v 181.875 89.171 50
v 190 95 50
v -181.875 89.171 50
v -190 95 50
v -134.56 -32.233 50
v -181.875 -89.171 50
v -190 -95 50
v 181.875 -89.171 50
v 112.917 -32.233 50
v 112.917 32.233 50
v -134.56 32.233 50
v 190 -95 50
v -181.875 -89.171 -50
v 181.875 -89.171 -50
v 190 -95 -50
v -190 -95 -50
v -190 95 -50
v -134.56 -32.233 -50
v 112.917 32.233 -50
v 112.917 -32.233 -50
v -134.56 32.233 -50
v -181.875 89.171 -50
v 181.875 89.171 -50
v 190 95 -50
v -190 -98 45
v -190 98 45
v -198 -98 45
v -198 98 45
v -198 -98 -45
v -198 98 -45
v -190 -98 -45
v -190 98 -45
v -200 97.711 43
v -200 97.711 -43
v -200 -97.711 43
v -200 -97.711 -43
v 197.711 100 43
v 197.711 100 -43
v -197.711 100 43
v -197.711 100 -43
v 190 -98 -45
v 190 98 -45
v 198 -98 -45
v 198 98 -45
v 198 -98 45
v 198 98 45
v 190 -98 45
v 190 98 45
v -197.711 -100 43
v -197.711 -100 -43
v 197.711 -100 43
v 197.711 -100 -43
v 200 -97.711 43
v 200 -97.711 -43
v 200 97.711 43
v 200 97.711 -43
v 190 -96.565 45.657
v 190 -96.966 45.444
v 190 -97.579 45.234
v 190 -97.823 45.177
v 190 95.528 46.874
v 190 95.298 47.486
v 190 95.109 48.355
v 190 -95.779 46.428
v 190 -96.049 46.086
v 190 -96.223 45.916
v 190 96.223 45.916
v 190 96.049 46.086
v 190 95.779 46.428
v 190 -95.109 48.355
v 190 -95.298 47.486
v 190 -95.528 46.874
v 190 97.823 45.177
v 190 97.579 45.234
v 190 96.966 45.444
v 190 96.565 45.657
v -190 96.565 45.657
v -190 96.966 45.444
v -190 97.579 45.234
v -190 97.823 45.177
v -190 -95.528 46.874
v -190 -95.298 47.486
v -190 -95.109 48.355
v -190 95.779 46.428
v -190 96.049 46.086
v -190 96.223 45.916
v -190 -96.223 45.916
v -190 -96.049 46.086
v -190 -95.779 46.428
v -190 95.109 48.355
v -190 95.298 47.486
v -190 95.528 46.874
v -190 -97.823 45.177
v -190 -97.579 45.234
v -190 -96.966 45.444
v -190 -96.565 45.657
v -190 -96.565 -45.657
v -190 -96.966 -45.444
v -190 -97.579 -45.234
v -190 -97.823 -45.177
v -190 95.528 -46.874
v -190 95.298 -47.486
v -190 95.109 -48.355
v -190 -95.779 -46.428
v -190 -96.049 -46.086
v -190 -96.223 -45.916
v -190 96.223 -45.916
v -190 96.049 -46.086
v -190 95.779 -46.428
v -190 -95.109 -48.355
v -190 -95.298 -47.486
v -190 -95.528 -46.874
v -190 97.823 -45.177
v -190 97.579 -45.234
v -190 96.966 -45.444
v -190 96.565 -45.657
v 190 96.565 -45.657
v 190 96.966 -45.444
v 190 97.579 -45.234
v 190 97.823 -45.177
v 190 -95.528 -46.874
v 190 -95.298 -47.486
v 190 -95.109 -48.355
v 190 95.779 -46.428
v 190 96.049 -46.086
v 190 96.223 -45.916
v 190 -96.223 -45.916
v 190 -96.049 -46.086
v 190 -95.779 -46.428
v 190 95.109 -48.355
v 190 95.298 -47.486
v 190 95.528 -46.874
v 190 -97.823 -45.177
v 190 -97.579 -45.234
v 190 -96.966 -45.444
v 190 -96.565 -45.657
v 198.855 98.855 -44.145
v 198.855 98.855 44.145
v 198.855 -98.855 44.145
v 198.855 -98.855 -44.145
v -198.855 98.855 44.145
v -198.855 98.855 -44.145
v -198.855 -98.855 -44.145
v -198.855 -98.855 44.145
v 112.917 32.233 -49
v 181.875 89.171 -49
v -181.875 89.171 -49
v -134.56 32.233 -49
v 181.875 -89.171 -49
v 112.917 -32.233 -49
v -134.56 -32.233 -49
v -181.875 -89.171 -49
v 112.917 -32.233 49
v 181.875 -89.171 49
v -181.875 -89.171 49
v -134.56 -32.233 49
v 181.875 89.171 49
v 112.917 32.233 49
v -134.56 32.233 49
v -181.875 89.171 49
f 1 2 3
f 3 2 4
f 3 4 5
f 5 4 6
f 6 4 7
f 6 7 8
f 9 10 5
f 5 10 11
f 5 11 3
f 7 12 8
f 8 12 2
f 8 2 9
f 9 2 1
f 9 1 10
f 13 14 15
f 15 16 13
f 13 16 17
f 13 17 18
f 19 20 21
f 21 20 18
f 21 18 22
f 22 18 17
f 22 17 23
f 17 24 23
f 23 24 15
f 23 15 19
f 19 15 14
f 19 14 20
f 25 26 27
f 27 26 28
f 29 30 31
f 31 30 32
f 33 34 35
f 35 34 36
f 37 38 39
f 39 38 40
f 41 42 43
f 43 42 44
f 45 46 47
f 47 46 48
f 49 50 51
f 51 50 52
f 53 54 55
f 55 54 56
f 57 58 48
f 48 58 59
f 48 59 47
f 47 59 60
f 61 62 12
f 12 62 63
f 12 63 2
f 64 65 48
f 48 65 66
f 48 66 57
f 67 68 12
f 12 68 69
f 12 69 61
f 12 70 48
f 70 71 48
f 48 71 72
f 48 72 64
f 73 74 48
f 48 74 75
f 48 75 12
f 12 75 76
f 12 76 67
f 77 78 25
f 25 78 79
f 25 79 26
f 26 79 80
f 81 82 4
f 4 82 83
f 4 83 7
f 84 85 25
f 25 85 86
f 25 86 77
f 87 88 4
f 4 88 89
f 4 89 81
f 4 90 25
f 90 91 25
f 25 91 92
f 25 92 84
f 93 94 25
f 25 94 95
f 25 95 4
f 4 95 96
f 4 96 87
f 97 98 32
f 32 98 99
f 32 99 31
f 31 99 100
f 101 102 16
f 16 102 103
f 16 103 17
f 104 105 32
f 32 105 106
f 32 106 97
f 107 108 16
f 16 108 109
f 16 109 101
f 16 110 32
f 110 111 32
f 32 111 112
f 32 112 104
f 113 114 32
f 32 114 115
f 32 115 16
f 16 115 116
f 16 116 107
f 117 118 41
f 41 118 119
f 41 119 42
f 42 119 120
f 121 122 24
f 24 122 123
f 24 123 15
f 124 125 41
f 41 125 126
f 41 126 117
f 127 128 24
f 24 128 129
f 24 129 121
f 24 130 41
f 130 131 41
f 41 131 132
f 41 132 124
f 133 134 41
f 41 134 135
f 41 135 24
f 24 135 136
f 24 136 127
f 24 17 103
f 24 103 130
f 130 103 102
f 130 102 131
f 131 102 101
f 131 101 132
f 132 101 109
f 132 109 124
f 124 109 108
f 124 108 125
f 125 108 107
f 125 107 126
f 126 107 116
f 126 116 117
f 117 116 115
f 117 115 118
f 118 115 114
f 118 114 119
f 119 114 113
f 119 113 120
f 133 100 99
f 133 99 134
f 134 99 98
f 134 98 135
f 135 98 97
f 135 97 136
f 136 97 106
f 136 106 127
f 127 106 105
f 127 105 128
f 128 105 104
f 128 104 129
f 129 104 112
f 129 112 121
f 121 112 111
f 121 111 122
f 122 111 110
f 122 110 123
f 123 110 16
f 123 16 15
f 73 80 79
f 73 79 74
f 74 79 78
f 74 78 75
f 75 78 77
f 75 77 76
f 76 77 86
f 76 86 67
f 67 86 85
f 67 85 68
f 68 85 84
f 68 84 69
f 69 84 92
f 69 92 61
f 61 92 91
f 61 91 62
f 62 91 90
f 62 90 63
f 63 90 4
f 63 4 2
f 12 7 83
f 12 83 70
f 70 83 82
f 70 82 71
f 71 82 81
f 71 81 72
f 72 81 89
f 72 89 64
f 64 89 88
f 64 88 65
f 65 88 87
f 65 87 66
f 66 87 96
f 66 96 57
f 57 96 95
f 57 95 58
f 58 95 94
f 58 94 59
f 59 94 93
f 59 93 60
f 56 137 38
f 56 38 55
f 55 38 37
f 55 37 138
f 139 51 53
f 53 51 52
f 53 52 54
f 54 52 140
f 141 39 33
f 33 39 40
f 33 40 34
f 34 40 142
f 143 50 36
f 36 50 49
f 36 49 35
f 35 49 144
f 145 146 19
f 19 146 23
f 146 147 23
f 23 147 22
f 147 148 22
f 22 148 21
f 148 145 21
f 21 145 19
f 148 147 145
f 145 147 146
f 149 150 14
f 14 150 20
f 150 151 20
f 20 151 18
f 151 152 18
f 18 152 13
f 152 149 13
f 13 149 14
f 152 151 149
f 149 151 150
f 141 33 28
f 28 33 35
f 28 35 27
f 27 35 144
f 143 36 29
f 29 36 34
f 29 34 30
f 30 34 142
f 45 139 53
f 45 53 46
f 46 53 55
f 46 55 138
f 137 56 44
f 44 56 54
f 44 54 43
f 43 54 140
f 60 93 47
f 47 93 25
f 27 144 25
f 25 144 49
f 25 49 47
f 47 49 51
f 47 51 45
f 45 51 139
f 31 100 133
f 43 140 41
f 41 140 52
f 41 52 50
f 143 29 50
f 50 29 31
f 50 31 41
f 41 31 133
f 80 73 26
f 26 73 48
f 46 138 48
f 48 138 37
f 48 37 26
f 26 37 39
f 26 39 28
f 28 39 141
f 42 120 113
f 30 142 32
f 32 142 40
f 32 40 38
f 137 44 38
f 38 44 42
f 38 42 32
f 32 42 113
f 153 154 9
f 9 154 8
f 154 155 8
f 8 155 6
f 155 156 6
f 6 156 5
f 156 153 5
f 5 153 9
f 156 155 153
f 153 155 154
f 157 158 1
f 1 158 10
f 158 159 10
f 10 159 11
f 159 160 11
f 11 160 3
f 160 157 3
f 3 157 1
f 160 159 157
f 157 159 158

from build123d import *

# Parameters (mm, degrees)
BOSS_EXTRUDE3_DEPTH      = 45
BOSS_EXTRUDE3_DEPTH_BACK = 45
SKETCH4_W                = 400
SKETCH4_H                = 200
BOSS_EXTRUDE9_DEPTH      = 50
BOSS_EXTRUDE9_DEPTH_BACK = 50
EXTRUDE_THIN1_START      = -380
EXTRUDE_THIN1_DEPTH      = 380
MIRROR6_START            = -380
MIRROR6_COPY_1_DEPTH     = 380
CUT_EXTRUDE5_DEPTH       = 243.950612345
MIRROR8_COPY_1_DEPTH     = 243.950612345
CUT_EXTRUDE6_DEPTH       = 1
CHAMFER2_SIZE            = 2
CHAMFER3_START           = -200
CHAMFER3_DEPTH           = 400
MIRROR11_COPY_1_DEPTH    = 1


with BuildPart() as part:
    # Sketch4 → Boss-Extrude3 (new, two sides: drawn at the far end of the back side and taken through both)
    with BuildSketch(Plane.XY.offset(-BOSS_EXTRUDE3_DEPTH_BACK)):
        Rectangle(SKETCH4_W, SKETCH4_H)
    extrude(amount=BOSS_EXTRUDE3_DEPTH + BOSS_EXTRUDE3_DEPTH_BACK)

    # Sketch5 → Boss-Extrude9 (add, two sides: drawn at the far end of the back side and taken through both)
    with BuildSketch(Plane.XY.offset(-BOSS_EXTRUDE9_DEPTH_BACK)):
        with BuildLine():
            ThreePointArc((2.236067977, -1.118033989), (0, -0.590169944), (-2.236067977, -1.118033989))
            Line((-2.236067977, -1.118033989), (-190, -95))
            Line((-190, -95), (-190, 95))
            Line((-190, 95), (-2.236067977, 1.118033989))
            ThreePointArc((-2.236067977, 1.118033989), (0, 0.590169944), (2.236067977, 1.118033989))
            Line((2.236067977, 1.118033989), (190, 95))
            Line((190, 95), (190, -95))
            Line((190, -95), (2.236067977, -1.118033989))
        make_face()
        with BuildLine():
            ThreePointArc((2.236067977, 1.118033989), (0, 0.590169944), (-2.236067977, 1.118033989))
            Line((-2.236067977, 1.118033989), (-190, 95))
            Line((-190, 95), (190, 95))
            Line((190, 95), (2.236067977, 1.118033989))
        make_face()
        with BuildLine():
            Line((2.236067977, -1.118033989), (190, -95))
            Line((190, -95), (-190, -95))
            Line((-190, -95), (-2.236067977, -1.118033989))
            ThreePointArc((-2.236067977, -1.118033989), (0, -0.590169944), (2.236067977, -1.118033989))
        make_face()
    extrude(amount=BOSS_EXTRUDE9_DEPTH + BOSS_EXTRUDE9_DEPTH_BACK)

    # Extrude-Thin1: read off the stored shape, not the designer's step
    # Extrude-Thin1 outline → Extrude-Thin1 (add)
    with BuildSketch(Plane.ZY.offset(190).offset(EXTRUDE_THIN1_START)):
        with BuildLine():
            add(Edge.make_bspline(
                [(-50, 95), (-48.146158838, 95), (-45.468843049, 95.640067172), (-45, 98.16553813), (-45, 100)],
                knots=[0, 0, 0, 0, 0.512954667, 1, 1, 1, 1], degree=3))
            Line((-50, 95), (-45, 95))
            Line((-45, 95), (-45, 100))
        make_face()
    extrude_thin1 = extrude(amount=EXTRUDE_THIN1_DEPTH)

    # Mirror5: Extrude-Thin1 across plane
    add(extrude_thin1.mirror(Plane.ZX))

    # Mirror6: Extrude-Thin1 across plane
    add(extrude_thin1.mirror(Plane.XY))

    # Mirror6 copy 1 sketch → Mirror6 copy 1 (add)
    with BuildSketch(Plane(origin=(-190, 0, 0), x_dir=(0, 0, -1), z_dir=(-1, 0, 0)).offset(MIRROR6_START)):
        with BuildLine():
            add(Edge.make_bspline(
                [(-50, 95), (-48.146158838, 95), (-45.468843049, 95.640067172), (-45, 98.16553813), (-45, 100)],
                knots=[0, 0, 0, 0, 0.512954667, 1, 1, 1, 1], degree=3))
            Line((-50, 95), (-45, 95))
            Line((-45, 95), (-45, 100))
        make_face()
    extrude(amount=MIRROR6_COPY_1_DEPTH)

    # Sketch11 → Cut-Extrude5 (cut, through all)
    with BuildSketch(Plane(origin=(0, 0, -45), x_dir=(-1, 0, 0), z_dir=(0, 0, -1))):
        Polygon((-197.710907072, 100), (-200, 97.710907072), (-200, 100), align=None)
    cut_extrude5 = extrude(amount=-CUT_EXTRUDE5_DEPTH, mode=Mode.SUBTRACT)

    # Mirror7: Cut-Extrude5 across plane
    add(cut_extrude5.mirror(Plane.ZX), mode=Mode.SUBTRACT)

    # Mirror8: Cut-Extrude5 across plane
    add(cut_extrude5.mirror(Plane(origin=(0, 0, 0), x_dir=(0, 0, 1), z_dir=(1, 0, 0))), mode=Mode.SUBTRACT)

    # Mirror8 copy 1 sketch → Mirror8 copy 1 (cut, through all)
    with BuildSketch(Plane(origin=(0, 0, -45), x_dir=(1, 0, 0), z_dir=(0, 0, -1))):
        Polygon((-197.710907072, 100), (-200, 97.710907072), (-200, 100), align=None)
    extrude(amount=-MIRROR8_COPY_1_DEPTH, mode=Mode.SUBTRACT)

    # Sketch12 → Cut-Extrude6 (cut)
    with BuildSketch(Plane(origin=(0, 0, -50), x_dir=(-1, 0, 0), z_dir=(0, 0, -1))):
        Polygon((-181.874897075, 89.170531546), (181.874897075, 89.170531546), (134.560480933, 32.233127844), (-112.917374812, 32.233127844), align=None)
    cut_extrude6 = extrude(amount=-CUT_EXTRUDE6_DEPTH, mode=Mode.SUBTRACT)

    # Mirror9: Cut-Extrude6 across plane
    add(cut_extrude6.mirror(Plane.ZX), mode=Mode.SUBTRACT)

    # Chamfer2
    chamfer2_edges = [part.edges().sort_by_distance(p)[0] for p in [
        (200, 0, 45),
        (200, 0, -45),
        (-200, 0, -45),
        (-200, 0, 45),
    ]]
    chamfer(chamfer2_edges, length=CHAMFER2_SIZE)

    # Chamfer3: read off the stored shape, not the designer's step
    # Chamfer3 outline → Chamfer3 (cut)
    with BuildSketch(Plane.YZ.offset(CHAMFER3_START)):
        with BuildLine():
            Line((-100, 45), (-100, 43))
            Line((-100, 43), (-97.823486796, 45.176513202))
            add(Edge.make_bspline(
                [(-97.823486796, 45.176513202), (-98.429622739, 45.049035026), (-99.14991283, 45), (-100, 45)],
                knots=[0.774303846, 0.774303846, 0.774303846, 0.774303846, 1, 1, 1, 1], degree=3))
        make_face()
        with BuildLine():
            Line((-100, -43), (-100, -45))
            add(Edge.make_bspline(
                [(-97.823486796, -45.176513202), (-98.429622739, -45.049035026), (-99.14991283, -45), (-100, -45)],
                knots=[0.774303846, 0.774303846, 0.774303846, 0.774303846, 1, 1, 1, 1], degree=3))
            Line((-97.823486796, -45.176513202), (-100, -43))
        make_face()
        with BuildLine():
            Line((100, 43), (100, 45))
            add(Edge.make_bspline(
                [(97.823486796, 45.176513202), (98.429622739, 45.049035026), (99.14991283, 45), (100, 45)],
                knots=[0.774303846, 0.774303846, 0.774303846, 0.774303846, 1, 1, 1, 1], degree=3))
            Line((97.823486796, 45.176513202), (100, 43))
        make_face()
        with BuildLine():
            add(Edge.make_bspline(
                [(97.823486796, -45.176513202), (98.429622739, -45.049035026), (99.14991283, -45), (100, -45)],
                knots=[0.774303846, 0.774303846, 0.774303846, 0.774303846, 1, 1, 1, 1], degree=3))
            Line((100, -45), (100, -43))
            Line((100, -43), (97.823486796, -45.176513202))
        make_face()
    extrude(amount=CHAMFER3_DEPTH, mode=Mode.SUBTRACT)

    # Mirror11: Cut-Extrude6 across plane
    add(cut_extrude6.mirror(Plane.XY), mode=Mode.SUBTRACT)

    # Mirror11 copy 1 sketch → Mirror11 copy 1 (cut)
    with BuildSketch(Plane(origin=(0, 0, 50), x_dir=(-1, 0, 0), z_dir=(0, 0, 1))):
        Polygon((-181.874897075, 89.170531546), (181.874897075, 89.170531546), (134.560480933, 32.233127844), (-112.917374812, 32.233127844), align=None)
    extrude(amount=-MIRROR11_COPY_1_DEPTH, mode=Mode.SUBTRACT)


solid = part.part
